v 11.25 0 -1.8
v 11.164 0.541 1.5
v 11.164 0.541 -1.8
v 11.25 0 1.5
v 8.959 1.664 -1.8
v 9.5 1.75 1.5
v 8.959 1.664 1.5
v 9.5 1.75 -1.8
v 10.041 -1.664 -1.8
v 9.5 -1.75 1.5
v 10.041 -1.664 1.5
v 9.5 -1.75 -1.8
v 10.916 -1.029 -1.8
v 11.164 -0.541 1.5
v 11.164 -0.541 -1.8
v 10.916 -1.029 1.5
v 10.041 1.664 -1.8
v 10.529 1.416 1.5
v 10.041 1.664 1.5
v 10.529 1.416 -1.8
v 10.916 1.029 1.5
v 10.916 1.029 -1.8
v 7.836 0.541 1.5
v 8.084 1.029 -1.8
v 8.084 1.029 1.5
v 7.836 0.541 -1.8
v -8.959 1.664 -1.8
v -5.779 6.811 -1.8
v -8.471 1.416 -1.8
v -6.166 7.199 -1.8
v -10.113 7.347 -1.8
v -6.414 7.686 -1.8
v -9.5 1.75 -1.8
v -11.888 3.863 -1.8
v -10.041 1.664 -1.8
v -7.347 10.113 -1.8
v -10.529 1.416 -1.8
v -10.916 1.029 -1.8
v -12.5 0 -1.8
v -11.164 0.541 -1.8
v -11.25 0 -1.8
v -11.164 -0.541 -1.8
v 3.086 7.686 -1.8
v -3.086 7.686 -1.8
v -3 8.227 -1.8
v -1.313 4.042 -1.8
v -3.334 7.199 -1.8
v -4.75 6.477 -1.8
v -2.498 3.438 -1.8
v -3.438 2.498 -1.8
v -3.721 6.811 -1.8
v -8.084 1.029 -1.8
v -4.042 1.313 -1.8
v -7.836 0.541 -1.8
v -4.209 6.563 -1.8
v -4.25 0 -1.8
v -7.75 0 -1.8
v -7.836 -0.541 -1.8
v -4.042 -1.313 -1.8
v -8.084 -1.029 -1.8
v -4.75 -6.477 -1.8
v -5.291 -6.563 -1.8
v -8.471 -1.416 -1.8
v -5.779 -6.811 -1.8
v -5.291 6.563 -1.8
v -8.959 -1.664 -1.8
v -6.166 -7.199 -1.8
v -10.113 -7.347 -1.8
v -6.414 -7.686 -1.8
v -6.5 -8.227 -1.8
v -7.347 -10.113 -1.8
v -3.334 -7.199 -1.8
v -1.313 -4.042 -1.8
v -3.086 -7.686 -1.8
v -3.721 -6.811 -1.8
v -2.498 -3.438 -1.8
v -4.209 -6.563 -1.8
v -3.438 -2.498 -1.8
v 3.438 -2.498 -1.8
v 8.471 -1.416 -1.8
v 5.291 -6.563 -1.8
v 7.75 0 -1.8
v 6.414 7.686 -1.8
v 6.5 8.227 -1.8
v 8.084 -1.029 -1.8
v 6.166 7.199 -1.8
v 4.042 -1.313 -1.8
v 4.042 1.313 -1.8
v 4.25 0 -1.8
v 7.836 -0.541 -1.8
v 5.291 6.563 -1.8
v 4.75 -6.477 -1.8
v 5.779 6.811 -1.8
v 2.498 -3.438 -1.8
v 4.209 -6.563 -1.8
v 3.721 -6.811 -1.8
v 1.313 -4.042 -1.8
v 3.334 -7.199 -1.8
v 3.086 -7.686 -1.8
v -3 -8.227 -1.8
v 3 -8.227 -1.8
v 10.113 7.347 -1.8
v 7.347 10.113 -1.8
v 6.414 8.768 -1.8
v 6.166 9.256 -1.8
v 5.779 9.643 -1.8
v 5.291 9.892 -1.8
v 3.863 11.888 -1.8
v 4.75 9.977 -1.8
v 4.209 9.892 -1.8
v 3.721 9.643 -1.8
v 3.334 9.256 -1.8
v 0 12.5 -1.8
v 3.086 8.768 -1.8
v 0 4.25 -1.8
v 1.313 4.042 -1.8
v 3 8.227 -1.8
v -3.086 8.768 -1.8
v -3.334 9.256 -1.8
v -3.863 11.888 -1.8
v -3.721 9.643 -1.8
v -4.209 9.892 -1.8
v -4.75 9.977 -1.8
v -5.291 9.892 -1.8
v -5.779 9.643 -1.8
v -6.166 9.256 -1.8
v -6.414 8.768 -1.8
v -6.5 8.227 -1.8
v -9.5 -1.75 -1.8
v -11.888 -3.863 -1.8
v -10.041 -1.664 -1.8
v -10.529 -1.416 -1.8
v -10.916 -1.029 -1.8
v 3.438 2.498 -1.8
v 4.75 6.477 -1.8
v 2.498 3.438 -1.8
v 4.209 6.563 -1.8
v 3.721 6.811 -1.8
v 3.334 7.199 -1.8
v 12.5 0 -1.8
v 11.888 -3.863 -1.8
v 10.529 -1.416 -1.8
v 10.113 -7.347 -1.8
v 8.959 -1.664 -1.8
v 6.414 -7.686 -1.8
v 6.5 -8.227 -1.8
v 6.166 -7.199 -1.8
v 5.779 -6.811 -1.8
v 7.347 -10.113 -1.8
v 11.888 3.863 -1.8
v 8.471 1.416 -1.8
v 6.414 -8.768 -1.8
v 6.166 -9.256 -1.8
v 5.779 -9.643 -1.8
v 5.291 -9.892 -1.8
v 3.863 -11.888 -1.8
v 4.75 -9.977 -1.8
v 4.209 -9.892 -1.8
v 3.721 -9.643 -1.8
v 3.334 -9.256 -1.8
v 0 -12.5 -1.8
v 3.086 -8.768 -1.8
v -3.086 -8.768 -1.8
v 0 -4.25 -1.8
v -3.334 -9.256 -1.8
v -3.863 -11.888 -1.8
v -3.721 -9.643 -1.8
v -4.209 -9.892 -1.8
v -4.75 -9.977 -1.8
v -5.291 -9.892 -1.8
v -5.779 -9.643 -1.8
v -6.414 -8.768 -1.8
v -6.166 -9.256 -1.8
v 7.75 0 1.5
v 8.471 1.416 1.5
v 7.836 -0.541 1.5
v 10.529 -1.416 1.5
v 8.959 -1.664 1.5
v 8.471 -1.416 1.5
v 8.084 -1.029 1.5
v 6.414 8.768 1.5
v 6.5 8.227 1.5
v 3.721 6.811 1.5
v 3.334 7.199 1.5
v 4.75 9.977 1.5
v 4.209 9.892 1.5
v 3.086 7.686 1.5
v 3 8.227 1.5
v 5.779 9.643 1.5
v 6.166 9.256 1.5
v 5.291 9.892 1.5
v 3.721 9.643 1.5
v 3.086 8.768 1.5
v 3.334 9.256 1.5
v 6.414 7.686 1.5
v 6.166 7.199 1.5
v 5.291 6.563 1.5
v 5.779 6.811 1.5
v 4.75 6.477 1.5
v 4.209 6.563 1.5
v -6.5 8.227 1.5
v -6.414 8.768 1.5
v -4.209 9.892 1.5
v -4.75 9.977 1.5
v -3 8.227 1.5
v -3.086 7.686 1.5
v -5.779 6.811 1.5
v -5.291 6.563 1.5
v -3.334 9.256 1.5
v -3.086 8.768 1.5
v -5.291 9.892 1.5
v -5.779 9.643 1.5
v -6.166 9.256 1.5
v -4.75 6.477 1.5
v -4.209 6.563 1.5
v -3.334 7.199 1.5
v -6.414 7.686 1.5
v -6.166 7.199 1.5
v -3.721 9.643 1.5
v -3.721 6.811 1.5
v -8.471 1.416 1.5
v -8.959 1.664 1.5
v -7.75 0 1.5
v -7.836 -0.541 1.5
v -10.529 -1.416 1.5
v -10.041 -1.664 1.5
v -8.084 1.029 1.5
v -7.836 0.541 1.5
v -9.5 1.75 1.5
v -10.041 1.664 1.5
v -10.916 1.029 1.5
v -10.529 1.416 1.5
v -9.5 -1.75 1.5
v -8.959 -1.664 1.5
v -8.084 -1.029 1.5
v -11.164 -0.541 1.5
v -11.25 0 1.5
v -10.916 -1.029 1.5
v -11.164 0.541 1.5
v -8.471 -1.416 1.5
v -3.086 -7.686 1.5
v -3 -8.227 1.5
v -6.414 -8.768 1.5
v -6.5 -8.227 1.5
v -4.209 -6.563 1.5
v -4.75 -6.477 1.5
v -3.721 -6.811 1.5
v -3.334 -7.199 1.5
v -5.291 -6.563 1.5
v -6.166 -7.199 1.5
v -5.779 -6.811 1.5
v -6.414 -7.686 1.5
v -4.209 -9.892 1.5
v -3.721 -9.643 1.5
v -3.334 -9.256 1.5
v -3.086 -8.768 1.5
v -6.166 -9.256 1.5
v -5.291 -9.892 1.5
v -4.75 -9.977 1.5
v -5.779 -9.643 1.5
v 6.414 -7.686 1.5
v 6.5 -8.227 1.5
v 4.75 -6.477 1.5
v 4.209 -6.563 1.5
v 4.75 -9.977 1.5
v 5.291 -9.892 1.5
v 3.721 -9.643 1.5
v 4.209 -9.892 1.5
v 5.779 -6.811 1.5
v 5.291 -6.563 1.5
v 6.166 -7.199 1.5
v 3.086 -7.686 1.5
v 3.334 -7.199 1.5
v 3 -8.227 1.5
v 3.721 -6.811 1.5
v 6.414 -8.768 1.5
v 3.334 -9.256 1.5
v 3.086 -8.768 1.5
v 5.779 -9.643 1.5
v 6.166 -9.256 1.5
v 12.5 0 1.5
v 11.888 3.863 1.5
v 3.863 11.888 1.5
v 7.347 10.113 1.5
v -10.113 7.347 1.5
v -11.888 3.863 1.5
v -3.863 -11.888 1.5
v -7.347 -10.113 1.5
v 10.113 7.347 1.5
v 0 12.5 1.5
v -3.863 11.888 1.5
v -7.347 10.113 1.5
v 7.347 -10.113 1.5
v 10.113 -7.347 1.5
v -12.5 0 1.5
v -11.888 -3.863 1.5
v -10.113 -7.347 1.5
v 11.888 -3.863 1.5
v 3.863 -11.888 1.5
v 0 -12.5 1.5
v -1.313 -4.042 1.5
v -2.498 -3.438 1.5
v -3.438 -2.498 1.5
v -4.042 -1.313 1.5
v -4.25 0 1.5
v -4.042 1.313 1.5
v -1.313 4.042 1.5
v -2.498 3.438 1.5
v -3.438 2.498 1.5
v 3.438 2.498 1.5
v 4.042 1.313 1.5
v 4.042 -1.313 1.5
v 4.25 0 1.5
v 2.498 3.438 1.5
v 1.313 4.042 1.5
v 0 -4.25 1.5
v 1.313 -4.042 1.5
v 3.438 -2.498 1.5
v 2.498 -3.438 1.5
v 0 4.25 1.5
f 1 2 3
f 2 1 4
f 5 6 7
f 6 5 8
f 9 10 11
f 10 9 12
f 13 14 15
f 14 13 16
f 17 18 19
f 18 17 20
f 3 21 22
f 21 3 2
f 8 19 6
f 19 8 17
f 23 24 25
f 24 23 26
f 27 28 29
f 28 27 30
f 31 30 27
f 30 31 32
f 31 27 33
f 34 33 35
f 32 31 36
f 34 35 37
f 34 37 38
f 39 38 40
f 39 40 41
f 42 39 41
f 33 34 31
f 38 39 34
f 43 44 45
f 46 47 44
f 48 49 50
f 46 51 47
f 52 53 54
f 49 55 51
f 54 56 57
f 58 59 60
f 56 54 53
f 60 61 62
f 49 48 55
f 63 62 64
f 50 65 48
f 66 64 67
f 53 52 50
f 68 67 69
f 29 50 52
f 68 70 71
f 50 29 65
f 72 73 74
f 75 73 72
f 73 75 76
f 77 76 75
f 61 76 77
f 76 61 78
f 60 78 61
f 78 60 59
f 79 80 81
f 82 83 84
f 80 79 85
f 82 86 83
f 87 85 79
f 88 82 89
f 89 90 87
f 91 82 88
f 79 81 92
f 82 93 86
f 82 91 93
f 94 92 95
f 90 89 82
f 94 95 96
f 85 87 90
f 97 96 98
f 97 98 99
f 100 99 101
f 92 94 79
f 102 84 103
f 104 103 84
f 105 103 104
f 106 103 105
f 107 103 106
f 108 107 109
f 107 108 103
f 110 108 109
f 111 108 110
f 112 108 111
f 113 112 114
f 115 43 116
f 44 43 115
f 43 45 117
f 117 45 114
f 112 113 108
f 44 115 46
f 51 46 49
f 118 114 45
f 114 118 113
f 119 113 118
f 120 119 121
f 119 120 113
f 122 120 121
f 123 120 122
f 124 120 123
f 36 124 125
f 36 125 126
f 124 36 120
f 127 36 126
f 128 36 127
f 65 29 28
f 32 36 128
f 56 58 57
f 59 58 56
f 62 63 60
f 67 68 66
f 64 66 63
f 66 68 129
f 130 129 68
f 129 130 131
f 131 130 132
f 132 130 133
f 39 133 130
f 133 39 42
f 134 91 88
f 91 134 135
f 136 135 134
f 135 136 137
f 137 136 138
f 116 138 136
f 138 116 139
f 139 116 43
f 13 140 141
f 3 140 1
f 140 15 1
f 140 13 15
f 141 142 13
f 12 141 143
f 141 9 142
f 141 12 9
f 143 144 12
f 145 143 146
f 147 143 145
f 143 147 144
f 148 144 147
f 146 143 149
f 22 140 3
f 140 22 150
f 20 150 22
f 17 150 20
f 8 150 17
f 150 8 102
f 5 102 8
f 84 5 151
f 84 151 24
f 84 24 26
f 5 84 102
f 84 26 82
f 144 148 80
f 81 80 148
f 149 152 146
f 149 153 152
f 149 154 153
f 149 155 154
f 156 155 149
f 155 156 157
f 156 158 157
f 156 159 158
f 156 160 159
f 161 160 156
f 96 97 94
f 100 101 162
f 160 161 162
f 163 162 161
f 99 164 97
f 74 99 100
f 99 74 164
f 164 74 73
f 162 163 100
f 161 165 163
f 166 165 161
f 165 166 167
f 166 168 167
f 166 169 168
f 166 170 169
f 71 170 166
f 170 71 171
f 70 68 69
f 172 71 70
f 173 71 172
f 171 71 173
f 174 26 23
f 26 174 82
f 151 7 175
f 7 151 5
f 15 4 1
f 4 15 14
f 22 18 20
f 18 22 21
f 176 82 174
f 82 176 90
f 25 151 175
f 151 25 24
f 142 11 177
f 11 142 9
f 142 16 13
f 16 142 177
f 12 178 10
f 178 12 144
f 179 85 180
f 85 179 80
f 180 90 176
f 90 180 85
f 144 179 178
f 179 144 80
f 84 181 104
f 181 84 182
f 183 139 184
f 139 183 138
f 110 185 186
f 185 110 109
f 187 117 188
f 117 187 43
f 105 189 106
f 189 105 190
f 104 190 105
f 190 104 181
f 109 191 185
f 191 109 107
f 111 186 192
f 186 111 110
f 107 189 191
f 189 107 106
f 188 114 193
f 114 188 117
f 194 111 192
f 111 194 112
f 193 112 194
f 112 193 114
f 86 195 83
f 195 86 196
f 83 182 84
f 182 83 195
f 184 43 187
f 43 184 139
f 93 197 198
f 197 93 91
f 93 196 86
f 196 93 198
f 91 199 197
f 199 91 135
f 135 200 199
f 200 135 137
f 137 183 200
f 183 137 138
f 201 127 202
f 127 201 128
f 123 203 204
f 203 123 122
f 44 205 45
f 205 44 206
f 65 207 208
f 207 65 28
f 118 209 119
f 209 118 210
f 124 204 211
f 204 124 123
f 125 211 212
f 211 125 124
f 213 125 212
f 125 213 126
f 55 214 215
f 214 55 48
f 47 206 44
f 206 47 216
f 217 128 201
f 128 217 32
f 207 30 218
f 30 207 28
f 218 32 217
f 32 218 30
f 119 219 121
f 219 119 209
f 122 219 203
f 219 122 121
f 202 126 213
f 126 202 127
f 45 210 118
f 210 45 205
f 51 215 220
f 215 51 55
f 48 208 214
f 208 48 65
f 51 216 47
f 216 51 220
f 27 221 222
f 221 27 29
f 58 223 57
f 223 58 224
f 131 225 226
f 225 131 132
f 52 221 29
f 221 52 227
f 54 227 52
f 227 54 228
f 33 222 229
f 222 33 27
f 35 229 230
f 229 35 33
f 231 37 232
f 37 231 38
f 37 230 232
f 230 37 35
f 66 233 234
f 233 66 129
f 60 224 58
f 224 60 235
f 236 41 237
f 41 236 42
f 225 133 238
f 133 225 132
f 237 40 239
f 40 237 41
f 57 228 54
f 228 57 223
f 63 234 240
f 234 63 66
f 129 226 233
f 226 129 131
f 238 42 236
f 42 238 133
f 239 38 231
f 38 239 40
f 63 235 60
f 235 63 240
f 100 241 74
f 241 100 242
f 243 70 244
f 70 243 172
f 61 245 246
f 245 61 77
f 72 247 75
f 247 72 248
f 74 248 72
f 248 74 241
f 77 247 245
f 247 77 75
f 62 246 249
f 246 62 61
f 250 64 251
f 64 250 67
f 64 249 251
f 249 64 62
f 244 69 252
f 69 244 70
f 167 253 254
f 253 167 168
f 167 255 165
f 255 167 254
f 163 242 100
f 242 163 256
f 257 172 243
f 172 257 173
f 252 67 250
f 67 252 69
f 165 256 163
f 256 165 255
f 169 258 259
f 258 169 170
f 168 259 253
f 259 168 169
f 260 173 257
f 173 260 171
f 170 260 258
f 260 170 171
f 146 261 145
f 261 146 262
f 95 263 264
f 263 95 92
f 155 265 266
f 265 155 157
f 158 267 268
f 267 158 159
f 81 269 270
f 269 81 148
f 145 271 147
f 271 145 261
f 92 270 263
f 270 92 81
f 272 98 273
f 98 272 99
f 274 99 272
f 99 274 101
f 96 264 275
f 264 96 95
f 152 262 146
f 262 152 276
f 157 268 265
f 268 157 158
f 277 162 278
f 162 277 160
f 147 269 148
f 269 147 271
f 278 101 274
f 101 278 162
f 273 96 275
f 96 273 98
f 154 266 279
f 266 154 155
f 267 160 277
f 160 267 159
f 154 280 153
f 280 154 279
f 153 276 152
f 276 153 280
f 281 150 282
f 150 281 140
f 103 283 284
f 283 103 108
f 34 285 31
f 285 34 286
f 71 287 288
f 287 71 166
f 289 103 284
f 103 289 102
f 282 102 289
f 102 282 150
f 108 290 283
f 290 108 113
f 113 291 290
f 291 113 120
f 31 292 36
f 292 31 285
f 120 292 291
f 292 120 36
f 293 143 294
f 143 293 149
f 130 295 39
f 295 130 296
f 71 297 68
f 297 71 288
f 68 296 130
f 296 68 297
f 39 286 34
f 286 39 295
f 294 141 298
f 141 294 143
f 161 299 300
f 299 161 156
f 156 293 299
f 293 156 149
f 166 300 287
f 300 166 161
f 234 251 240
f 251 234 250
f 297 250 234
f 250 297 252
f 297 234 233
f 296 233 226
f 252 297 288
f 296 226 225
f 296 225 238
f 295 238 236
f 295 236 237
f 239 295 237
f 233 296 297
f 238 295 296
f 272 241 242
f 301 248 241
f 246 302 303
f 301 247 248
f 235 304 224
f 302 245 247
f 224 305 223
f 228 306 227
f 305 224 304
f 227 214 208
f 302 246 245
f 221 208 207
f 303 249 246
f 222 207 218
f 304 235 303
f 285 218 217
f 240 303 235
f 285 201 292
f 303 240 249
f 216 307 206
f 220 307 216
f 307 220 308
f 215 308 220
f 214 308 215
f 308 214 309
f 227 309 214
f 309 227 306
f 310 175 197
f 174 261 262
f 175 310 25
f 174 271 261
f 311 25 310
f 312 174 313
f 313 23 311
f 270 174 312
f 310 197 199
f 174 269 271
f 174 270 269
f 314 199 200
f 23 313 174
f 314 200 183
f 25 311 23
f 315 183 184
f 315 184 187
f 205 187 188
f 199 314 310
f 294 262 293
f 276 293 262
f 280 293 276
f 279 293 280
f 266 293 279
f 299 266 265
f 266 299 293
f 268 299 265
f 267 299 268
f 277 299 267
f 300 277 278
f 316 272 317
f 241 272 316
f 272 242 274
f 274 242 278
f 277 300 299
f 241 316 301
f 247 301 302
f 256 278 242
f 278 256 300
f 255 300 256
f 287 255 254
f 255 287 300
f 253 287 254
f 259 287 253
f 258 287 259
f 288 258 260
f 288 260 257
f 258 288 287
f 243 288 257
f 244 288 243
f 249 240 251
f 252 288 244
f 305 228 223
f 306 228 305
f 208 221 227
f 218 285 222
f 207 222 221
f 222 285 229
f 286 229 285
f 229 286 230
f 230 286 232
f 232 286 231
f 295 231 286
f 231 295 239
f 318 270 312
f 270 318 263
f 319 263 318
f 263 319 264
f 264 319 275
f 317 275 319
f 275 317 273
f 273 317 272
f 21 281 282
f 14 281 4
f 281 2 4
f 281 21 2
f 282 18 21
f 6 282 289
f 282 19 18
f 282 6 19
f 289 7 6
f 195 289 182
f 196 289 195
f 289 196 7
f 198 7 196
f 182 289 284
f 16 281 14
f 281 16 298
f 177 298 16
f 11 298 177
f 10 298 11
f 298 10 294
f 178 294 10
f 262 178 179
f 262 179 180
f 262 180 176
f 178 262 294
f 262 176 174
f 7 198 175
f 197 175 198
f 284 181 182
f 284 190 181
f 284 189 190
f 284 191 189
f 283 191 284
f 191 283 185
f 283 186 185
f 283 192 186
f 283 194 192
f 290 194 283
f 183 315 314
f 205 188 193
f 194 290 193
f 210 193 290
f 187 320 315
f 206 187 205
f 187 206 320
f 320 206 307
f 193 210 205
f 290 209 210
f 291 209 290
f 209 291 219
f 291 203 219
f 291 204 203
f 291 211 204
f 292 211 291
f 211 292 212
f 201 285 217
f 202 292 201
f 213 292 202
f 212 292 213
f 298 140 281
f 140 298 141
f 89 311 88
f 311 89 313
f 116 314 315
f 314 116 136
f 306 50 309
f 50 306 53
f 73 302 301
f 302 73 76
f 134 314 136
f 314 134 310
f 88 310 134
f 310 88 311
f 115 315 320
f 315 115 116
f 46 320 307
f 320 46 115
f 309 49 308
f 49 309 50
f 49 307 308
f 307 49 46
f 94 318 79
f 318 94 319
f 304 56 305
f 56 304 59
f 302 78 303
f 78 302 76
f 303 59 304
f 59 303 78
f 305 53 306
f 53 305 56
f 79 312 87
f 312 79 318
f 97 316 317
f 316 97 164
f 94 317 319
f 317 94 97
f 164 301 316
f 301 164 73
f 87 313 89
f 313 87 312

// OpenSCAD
// Bottom part of M8 nut holder
// Updated by Alex Volkov
// From backport by Paul Arden <paul@arden.io> from Thomas Sanladerer's design.

render_fn = 20;

m8_inner=8.5;
hh = 3.3;

module m3_holes(d,r,h){
     for (i = [0:6]) {
        translate([r*cos(i*60),r*sin(i*60),0]) cylinder(d=d,h=h,$fn=render_fn);
    }    
}

translate([0,0,-1.8])
difference(){
    cylinder(d=25, h=hh, $fn=render_fn);
    cylinder(d=m8_inner, h=hh, $fn=render_fn);
    m3_holes(3.5,9.5,4);
}
